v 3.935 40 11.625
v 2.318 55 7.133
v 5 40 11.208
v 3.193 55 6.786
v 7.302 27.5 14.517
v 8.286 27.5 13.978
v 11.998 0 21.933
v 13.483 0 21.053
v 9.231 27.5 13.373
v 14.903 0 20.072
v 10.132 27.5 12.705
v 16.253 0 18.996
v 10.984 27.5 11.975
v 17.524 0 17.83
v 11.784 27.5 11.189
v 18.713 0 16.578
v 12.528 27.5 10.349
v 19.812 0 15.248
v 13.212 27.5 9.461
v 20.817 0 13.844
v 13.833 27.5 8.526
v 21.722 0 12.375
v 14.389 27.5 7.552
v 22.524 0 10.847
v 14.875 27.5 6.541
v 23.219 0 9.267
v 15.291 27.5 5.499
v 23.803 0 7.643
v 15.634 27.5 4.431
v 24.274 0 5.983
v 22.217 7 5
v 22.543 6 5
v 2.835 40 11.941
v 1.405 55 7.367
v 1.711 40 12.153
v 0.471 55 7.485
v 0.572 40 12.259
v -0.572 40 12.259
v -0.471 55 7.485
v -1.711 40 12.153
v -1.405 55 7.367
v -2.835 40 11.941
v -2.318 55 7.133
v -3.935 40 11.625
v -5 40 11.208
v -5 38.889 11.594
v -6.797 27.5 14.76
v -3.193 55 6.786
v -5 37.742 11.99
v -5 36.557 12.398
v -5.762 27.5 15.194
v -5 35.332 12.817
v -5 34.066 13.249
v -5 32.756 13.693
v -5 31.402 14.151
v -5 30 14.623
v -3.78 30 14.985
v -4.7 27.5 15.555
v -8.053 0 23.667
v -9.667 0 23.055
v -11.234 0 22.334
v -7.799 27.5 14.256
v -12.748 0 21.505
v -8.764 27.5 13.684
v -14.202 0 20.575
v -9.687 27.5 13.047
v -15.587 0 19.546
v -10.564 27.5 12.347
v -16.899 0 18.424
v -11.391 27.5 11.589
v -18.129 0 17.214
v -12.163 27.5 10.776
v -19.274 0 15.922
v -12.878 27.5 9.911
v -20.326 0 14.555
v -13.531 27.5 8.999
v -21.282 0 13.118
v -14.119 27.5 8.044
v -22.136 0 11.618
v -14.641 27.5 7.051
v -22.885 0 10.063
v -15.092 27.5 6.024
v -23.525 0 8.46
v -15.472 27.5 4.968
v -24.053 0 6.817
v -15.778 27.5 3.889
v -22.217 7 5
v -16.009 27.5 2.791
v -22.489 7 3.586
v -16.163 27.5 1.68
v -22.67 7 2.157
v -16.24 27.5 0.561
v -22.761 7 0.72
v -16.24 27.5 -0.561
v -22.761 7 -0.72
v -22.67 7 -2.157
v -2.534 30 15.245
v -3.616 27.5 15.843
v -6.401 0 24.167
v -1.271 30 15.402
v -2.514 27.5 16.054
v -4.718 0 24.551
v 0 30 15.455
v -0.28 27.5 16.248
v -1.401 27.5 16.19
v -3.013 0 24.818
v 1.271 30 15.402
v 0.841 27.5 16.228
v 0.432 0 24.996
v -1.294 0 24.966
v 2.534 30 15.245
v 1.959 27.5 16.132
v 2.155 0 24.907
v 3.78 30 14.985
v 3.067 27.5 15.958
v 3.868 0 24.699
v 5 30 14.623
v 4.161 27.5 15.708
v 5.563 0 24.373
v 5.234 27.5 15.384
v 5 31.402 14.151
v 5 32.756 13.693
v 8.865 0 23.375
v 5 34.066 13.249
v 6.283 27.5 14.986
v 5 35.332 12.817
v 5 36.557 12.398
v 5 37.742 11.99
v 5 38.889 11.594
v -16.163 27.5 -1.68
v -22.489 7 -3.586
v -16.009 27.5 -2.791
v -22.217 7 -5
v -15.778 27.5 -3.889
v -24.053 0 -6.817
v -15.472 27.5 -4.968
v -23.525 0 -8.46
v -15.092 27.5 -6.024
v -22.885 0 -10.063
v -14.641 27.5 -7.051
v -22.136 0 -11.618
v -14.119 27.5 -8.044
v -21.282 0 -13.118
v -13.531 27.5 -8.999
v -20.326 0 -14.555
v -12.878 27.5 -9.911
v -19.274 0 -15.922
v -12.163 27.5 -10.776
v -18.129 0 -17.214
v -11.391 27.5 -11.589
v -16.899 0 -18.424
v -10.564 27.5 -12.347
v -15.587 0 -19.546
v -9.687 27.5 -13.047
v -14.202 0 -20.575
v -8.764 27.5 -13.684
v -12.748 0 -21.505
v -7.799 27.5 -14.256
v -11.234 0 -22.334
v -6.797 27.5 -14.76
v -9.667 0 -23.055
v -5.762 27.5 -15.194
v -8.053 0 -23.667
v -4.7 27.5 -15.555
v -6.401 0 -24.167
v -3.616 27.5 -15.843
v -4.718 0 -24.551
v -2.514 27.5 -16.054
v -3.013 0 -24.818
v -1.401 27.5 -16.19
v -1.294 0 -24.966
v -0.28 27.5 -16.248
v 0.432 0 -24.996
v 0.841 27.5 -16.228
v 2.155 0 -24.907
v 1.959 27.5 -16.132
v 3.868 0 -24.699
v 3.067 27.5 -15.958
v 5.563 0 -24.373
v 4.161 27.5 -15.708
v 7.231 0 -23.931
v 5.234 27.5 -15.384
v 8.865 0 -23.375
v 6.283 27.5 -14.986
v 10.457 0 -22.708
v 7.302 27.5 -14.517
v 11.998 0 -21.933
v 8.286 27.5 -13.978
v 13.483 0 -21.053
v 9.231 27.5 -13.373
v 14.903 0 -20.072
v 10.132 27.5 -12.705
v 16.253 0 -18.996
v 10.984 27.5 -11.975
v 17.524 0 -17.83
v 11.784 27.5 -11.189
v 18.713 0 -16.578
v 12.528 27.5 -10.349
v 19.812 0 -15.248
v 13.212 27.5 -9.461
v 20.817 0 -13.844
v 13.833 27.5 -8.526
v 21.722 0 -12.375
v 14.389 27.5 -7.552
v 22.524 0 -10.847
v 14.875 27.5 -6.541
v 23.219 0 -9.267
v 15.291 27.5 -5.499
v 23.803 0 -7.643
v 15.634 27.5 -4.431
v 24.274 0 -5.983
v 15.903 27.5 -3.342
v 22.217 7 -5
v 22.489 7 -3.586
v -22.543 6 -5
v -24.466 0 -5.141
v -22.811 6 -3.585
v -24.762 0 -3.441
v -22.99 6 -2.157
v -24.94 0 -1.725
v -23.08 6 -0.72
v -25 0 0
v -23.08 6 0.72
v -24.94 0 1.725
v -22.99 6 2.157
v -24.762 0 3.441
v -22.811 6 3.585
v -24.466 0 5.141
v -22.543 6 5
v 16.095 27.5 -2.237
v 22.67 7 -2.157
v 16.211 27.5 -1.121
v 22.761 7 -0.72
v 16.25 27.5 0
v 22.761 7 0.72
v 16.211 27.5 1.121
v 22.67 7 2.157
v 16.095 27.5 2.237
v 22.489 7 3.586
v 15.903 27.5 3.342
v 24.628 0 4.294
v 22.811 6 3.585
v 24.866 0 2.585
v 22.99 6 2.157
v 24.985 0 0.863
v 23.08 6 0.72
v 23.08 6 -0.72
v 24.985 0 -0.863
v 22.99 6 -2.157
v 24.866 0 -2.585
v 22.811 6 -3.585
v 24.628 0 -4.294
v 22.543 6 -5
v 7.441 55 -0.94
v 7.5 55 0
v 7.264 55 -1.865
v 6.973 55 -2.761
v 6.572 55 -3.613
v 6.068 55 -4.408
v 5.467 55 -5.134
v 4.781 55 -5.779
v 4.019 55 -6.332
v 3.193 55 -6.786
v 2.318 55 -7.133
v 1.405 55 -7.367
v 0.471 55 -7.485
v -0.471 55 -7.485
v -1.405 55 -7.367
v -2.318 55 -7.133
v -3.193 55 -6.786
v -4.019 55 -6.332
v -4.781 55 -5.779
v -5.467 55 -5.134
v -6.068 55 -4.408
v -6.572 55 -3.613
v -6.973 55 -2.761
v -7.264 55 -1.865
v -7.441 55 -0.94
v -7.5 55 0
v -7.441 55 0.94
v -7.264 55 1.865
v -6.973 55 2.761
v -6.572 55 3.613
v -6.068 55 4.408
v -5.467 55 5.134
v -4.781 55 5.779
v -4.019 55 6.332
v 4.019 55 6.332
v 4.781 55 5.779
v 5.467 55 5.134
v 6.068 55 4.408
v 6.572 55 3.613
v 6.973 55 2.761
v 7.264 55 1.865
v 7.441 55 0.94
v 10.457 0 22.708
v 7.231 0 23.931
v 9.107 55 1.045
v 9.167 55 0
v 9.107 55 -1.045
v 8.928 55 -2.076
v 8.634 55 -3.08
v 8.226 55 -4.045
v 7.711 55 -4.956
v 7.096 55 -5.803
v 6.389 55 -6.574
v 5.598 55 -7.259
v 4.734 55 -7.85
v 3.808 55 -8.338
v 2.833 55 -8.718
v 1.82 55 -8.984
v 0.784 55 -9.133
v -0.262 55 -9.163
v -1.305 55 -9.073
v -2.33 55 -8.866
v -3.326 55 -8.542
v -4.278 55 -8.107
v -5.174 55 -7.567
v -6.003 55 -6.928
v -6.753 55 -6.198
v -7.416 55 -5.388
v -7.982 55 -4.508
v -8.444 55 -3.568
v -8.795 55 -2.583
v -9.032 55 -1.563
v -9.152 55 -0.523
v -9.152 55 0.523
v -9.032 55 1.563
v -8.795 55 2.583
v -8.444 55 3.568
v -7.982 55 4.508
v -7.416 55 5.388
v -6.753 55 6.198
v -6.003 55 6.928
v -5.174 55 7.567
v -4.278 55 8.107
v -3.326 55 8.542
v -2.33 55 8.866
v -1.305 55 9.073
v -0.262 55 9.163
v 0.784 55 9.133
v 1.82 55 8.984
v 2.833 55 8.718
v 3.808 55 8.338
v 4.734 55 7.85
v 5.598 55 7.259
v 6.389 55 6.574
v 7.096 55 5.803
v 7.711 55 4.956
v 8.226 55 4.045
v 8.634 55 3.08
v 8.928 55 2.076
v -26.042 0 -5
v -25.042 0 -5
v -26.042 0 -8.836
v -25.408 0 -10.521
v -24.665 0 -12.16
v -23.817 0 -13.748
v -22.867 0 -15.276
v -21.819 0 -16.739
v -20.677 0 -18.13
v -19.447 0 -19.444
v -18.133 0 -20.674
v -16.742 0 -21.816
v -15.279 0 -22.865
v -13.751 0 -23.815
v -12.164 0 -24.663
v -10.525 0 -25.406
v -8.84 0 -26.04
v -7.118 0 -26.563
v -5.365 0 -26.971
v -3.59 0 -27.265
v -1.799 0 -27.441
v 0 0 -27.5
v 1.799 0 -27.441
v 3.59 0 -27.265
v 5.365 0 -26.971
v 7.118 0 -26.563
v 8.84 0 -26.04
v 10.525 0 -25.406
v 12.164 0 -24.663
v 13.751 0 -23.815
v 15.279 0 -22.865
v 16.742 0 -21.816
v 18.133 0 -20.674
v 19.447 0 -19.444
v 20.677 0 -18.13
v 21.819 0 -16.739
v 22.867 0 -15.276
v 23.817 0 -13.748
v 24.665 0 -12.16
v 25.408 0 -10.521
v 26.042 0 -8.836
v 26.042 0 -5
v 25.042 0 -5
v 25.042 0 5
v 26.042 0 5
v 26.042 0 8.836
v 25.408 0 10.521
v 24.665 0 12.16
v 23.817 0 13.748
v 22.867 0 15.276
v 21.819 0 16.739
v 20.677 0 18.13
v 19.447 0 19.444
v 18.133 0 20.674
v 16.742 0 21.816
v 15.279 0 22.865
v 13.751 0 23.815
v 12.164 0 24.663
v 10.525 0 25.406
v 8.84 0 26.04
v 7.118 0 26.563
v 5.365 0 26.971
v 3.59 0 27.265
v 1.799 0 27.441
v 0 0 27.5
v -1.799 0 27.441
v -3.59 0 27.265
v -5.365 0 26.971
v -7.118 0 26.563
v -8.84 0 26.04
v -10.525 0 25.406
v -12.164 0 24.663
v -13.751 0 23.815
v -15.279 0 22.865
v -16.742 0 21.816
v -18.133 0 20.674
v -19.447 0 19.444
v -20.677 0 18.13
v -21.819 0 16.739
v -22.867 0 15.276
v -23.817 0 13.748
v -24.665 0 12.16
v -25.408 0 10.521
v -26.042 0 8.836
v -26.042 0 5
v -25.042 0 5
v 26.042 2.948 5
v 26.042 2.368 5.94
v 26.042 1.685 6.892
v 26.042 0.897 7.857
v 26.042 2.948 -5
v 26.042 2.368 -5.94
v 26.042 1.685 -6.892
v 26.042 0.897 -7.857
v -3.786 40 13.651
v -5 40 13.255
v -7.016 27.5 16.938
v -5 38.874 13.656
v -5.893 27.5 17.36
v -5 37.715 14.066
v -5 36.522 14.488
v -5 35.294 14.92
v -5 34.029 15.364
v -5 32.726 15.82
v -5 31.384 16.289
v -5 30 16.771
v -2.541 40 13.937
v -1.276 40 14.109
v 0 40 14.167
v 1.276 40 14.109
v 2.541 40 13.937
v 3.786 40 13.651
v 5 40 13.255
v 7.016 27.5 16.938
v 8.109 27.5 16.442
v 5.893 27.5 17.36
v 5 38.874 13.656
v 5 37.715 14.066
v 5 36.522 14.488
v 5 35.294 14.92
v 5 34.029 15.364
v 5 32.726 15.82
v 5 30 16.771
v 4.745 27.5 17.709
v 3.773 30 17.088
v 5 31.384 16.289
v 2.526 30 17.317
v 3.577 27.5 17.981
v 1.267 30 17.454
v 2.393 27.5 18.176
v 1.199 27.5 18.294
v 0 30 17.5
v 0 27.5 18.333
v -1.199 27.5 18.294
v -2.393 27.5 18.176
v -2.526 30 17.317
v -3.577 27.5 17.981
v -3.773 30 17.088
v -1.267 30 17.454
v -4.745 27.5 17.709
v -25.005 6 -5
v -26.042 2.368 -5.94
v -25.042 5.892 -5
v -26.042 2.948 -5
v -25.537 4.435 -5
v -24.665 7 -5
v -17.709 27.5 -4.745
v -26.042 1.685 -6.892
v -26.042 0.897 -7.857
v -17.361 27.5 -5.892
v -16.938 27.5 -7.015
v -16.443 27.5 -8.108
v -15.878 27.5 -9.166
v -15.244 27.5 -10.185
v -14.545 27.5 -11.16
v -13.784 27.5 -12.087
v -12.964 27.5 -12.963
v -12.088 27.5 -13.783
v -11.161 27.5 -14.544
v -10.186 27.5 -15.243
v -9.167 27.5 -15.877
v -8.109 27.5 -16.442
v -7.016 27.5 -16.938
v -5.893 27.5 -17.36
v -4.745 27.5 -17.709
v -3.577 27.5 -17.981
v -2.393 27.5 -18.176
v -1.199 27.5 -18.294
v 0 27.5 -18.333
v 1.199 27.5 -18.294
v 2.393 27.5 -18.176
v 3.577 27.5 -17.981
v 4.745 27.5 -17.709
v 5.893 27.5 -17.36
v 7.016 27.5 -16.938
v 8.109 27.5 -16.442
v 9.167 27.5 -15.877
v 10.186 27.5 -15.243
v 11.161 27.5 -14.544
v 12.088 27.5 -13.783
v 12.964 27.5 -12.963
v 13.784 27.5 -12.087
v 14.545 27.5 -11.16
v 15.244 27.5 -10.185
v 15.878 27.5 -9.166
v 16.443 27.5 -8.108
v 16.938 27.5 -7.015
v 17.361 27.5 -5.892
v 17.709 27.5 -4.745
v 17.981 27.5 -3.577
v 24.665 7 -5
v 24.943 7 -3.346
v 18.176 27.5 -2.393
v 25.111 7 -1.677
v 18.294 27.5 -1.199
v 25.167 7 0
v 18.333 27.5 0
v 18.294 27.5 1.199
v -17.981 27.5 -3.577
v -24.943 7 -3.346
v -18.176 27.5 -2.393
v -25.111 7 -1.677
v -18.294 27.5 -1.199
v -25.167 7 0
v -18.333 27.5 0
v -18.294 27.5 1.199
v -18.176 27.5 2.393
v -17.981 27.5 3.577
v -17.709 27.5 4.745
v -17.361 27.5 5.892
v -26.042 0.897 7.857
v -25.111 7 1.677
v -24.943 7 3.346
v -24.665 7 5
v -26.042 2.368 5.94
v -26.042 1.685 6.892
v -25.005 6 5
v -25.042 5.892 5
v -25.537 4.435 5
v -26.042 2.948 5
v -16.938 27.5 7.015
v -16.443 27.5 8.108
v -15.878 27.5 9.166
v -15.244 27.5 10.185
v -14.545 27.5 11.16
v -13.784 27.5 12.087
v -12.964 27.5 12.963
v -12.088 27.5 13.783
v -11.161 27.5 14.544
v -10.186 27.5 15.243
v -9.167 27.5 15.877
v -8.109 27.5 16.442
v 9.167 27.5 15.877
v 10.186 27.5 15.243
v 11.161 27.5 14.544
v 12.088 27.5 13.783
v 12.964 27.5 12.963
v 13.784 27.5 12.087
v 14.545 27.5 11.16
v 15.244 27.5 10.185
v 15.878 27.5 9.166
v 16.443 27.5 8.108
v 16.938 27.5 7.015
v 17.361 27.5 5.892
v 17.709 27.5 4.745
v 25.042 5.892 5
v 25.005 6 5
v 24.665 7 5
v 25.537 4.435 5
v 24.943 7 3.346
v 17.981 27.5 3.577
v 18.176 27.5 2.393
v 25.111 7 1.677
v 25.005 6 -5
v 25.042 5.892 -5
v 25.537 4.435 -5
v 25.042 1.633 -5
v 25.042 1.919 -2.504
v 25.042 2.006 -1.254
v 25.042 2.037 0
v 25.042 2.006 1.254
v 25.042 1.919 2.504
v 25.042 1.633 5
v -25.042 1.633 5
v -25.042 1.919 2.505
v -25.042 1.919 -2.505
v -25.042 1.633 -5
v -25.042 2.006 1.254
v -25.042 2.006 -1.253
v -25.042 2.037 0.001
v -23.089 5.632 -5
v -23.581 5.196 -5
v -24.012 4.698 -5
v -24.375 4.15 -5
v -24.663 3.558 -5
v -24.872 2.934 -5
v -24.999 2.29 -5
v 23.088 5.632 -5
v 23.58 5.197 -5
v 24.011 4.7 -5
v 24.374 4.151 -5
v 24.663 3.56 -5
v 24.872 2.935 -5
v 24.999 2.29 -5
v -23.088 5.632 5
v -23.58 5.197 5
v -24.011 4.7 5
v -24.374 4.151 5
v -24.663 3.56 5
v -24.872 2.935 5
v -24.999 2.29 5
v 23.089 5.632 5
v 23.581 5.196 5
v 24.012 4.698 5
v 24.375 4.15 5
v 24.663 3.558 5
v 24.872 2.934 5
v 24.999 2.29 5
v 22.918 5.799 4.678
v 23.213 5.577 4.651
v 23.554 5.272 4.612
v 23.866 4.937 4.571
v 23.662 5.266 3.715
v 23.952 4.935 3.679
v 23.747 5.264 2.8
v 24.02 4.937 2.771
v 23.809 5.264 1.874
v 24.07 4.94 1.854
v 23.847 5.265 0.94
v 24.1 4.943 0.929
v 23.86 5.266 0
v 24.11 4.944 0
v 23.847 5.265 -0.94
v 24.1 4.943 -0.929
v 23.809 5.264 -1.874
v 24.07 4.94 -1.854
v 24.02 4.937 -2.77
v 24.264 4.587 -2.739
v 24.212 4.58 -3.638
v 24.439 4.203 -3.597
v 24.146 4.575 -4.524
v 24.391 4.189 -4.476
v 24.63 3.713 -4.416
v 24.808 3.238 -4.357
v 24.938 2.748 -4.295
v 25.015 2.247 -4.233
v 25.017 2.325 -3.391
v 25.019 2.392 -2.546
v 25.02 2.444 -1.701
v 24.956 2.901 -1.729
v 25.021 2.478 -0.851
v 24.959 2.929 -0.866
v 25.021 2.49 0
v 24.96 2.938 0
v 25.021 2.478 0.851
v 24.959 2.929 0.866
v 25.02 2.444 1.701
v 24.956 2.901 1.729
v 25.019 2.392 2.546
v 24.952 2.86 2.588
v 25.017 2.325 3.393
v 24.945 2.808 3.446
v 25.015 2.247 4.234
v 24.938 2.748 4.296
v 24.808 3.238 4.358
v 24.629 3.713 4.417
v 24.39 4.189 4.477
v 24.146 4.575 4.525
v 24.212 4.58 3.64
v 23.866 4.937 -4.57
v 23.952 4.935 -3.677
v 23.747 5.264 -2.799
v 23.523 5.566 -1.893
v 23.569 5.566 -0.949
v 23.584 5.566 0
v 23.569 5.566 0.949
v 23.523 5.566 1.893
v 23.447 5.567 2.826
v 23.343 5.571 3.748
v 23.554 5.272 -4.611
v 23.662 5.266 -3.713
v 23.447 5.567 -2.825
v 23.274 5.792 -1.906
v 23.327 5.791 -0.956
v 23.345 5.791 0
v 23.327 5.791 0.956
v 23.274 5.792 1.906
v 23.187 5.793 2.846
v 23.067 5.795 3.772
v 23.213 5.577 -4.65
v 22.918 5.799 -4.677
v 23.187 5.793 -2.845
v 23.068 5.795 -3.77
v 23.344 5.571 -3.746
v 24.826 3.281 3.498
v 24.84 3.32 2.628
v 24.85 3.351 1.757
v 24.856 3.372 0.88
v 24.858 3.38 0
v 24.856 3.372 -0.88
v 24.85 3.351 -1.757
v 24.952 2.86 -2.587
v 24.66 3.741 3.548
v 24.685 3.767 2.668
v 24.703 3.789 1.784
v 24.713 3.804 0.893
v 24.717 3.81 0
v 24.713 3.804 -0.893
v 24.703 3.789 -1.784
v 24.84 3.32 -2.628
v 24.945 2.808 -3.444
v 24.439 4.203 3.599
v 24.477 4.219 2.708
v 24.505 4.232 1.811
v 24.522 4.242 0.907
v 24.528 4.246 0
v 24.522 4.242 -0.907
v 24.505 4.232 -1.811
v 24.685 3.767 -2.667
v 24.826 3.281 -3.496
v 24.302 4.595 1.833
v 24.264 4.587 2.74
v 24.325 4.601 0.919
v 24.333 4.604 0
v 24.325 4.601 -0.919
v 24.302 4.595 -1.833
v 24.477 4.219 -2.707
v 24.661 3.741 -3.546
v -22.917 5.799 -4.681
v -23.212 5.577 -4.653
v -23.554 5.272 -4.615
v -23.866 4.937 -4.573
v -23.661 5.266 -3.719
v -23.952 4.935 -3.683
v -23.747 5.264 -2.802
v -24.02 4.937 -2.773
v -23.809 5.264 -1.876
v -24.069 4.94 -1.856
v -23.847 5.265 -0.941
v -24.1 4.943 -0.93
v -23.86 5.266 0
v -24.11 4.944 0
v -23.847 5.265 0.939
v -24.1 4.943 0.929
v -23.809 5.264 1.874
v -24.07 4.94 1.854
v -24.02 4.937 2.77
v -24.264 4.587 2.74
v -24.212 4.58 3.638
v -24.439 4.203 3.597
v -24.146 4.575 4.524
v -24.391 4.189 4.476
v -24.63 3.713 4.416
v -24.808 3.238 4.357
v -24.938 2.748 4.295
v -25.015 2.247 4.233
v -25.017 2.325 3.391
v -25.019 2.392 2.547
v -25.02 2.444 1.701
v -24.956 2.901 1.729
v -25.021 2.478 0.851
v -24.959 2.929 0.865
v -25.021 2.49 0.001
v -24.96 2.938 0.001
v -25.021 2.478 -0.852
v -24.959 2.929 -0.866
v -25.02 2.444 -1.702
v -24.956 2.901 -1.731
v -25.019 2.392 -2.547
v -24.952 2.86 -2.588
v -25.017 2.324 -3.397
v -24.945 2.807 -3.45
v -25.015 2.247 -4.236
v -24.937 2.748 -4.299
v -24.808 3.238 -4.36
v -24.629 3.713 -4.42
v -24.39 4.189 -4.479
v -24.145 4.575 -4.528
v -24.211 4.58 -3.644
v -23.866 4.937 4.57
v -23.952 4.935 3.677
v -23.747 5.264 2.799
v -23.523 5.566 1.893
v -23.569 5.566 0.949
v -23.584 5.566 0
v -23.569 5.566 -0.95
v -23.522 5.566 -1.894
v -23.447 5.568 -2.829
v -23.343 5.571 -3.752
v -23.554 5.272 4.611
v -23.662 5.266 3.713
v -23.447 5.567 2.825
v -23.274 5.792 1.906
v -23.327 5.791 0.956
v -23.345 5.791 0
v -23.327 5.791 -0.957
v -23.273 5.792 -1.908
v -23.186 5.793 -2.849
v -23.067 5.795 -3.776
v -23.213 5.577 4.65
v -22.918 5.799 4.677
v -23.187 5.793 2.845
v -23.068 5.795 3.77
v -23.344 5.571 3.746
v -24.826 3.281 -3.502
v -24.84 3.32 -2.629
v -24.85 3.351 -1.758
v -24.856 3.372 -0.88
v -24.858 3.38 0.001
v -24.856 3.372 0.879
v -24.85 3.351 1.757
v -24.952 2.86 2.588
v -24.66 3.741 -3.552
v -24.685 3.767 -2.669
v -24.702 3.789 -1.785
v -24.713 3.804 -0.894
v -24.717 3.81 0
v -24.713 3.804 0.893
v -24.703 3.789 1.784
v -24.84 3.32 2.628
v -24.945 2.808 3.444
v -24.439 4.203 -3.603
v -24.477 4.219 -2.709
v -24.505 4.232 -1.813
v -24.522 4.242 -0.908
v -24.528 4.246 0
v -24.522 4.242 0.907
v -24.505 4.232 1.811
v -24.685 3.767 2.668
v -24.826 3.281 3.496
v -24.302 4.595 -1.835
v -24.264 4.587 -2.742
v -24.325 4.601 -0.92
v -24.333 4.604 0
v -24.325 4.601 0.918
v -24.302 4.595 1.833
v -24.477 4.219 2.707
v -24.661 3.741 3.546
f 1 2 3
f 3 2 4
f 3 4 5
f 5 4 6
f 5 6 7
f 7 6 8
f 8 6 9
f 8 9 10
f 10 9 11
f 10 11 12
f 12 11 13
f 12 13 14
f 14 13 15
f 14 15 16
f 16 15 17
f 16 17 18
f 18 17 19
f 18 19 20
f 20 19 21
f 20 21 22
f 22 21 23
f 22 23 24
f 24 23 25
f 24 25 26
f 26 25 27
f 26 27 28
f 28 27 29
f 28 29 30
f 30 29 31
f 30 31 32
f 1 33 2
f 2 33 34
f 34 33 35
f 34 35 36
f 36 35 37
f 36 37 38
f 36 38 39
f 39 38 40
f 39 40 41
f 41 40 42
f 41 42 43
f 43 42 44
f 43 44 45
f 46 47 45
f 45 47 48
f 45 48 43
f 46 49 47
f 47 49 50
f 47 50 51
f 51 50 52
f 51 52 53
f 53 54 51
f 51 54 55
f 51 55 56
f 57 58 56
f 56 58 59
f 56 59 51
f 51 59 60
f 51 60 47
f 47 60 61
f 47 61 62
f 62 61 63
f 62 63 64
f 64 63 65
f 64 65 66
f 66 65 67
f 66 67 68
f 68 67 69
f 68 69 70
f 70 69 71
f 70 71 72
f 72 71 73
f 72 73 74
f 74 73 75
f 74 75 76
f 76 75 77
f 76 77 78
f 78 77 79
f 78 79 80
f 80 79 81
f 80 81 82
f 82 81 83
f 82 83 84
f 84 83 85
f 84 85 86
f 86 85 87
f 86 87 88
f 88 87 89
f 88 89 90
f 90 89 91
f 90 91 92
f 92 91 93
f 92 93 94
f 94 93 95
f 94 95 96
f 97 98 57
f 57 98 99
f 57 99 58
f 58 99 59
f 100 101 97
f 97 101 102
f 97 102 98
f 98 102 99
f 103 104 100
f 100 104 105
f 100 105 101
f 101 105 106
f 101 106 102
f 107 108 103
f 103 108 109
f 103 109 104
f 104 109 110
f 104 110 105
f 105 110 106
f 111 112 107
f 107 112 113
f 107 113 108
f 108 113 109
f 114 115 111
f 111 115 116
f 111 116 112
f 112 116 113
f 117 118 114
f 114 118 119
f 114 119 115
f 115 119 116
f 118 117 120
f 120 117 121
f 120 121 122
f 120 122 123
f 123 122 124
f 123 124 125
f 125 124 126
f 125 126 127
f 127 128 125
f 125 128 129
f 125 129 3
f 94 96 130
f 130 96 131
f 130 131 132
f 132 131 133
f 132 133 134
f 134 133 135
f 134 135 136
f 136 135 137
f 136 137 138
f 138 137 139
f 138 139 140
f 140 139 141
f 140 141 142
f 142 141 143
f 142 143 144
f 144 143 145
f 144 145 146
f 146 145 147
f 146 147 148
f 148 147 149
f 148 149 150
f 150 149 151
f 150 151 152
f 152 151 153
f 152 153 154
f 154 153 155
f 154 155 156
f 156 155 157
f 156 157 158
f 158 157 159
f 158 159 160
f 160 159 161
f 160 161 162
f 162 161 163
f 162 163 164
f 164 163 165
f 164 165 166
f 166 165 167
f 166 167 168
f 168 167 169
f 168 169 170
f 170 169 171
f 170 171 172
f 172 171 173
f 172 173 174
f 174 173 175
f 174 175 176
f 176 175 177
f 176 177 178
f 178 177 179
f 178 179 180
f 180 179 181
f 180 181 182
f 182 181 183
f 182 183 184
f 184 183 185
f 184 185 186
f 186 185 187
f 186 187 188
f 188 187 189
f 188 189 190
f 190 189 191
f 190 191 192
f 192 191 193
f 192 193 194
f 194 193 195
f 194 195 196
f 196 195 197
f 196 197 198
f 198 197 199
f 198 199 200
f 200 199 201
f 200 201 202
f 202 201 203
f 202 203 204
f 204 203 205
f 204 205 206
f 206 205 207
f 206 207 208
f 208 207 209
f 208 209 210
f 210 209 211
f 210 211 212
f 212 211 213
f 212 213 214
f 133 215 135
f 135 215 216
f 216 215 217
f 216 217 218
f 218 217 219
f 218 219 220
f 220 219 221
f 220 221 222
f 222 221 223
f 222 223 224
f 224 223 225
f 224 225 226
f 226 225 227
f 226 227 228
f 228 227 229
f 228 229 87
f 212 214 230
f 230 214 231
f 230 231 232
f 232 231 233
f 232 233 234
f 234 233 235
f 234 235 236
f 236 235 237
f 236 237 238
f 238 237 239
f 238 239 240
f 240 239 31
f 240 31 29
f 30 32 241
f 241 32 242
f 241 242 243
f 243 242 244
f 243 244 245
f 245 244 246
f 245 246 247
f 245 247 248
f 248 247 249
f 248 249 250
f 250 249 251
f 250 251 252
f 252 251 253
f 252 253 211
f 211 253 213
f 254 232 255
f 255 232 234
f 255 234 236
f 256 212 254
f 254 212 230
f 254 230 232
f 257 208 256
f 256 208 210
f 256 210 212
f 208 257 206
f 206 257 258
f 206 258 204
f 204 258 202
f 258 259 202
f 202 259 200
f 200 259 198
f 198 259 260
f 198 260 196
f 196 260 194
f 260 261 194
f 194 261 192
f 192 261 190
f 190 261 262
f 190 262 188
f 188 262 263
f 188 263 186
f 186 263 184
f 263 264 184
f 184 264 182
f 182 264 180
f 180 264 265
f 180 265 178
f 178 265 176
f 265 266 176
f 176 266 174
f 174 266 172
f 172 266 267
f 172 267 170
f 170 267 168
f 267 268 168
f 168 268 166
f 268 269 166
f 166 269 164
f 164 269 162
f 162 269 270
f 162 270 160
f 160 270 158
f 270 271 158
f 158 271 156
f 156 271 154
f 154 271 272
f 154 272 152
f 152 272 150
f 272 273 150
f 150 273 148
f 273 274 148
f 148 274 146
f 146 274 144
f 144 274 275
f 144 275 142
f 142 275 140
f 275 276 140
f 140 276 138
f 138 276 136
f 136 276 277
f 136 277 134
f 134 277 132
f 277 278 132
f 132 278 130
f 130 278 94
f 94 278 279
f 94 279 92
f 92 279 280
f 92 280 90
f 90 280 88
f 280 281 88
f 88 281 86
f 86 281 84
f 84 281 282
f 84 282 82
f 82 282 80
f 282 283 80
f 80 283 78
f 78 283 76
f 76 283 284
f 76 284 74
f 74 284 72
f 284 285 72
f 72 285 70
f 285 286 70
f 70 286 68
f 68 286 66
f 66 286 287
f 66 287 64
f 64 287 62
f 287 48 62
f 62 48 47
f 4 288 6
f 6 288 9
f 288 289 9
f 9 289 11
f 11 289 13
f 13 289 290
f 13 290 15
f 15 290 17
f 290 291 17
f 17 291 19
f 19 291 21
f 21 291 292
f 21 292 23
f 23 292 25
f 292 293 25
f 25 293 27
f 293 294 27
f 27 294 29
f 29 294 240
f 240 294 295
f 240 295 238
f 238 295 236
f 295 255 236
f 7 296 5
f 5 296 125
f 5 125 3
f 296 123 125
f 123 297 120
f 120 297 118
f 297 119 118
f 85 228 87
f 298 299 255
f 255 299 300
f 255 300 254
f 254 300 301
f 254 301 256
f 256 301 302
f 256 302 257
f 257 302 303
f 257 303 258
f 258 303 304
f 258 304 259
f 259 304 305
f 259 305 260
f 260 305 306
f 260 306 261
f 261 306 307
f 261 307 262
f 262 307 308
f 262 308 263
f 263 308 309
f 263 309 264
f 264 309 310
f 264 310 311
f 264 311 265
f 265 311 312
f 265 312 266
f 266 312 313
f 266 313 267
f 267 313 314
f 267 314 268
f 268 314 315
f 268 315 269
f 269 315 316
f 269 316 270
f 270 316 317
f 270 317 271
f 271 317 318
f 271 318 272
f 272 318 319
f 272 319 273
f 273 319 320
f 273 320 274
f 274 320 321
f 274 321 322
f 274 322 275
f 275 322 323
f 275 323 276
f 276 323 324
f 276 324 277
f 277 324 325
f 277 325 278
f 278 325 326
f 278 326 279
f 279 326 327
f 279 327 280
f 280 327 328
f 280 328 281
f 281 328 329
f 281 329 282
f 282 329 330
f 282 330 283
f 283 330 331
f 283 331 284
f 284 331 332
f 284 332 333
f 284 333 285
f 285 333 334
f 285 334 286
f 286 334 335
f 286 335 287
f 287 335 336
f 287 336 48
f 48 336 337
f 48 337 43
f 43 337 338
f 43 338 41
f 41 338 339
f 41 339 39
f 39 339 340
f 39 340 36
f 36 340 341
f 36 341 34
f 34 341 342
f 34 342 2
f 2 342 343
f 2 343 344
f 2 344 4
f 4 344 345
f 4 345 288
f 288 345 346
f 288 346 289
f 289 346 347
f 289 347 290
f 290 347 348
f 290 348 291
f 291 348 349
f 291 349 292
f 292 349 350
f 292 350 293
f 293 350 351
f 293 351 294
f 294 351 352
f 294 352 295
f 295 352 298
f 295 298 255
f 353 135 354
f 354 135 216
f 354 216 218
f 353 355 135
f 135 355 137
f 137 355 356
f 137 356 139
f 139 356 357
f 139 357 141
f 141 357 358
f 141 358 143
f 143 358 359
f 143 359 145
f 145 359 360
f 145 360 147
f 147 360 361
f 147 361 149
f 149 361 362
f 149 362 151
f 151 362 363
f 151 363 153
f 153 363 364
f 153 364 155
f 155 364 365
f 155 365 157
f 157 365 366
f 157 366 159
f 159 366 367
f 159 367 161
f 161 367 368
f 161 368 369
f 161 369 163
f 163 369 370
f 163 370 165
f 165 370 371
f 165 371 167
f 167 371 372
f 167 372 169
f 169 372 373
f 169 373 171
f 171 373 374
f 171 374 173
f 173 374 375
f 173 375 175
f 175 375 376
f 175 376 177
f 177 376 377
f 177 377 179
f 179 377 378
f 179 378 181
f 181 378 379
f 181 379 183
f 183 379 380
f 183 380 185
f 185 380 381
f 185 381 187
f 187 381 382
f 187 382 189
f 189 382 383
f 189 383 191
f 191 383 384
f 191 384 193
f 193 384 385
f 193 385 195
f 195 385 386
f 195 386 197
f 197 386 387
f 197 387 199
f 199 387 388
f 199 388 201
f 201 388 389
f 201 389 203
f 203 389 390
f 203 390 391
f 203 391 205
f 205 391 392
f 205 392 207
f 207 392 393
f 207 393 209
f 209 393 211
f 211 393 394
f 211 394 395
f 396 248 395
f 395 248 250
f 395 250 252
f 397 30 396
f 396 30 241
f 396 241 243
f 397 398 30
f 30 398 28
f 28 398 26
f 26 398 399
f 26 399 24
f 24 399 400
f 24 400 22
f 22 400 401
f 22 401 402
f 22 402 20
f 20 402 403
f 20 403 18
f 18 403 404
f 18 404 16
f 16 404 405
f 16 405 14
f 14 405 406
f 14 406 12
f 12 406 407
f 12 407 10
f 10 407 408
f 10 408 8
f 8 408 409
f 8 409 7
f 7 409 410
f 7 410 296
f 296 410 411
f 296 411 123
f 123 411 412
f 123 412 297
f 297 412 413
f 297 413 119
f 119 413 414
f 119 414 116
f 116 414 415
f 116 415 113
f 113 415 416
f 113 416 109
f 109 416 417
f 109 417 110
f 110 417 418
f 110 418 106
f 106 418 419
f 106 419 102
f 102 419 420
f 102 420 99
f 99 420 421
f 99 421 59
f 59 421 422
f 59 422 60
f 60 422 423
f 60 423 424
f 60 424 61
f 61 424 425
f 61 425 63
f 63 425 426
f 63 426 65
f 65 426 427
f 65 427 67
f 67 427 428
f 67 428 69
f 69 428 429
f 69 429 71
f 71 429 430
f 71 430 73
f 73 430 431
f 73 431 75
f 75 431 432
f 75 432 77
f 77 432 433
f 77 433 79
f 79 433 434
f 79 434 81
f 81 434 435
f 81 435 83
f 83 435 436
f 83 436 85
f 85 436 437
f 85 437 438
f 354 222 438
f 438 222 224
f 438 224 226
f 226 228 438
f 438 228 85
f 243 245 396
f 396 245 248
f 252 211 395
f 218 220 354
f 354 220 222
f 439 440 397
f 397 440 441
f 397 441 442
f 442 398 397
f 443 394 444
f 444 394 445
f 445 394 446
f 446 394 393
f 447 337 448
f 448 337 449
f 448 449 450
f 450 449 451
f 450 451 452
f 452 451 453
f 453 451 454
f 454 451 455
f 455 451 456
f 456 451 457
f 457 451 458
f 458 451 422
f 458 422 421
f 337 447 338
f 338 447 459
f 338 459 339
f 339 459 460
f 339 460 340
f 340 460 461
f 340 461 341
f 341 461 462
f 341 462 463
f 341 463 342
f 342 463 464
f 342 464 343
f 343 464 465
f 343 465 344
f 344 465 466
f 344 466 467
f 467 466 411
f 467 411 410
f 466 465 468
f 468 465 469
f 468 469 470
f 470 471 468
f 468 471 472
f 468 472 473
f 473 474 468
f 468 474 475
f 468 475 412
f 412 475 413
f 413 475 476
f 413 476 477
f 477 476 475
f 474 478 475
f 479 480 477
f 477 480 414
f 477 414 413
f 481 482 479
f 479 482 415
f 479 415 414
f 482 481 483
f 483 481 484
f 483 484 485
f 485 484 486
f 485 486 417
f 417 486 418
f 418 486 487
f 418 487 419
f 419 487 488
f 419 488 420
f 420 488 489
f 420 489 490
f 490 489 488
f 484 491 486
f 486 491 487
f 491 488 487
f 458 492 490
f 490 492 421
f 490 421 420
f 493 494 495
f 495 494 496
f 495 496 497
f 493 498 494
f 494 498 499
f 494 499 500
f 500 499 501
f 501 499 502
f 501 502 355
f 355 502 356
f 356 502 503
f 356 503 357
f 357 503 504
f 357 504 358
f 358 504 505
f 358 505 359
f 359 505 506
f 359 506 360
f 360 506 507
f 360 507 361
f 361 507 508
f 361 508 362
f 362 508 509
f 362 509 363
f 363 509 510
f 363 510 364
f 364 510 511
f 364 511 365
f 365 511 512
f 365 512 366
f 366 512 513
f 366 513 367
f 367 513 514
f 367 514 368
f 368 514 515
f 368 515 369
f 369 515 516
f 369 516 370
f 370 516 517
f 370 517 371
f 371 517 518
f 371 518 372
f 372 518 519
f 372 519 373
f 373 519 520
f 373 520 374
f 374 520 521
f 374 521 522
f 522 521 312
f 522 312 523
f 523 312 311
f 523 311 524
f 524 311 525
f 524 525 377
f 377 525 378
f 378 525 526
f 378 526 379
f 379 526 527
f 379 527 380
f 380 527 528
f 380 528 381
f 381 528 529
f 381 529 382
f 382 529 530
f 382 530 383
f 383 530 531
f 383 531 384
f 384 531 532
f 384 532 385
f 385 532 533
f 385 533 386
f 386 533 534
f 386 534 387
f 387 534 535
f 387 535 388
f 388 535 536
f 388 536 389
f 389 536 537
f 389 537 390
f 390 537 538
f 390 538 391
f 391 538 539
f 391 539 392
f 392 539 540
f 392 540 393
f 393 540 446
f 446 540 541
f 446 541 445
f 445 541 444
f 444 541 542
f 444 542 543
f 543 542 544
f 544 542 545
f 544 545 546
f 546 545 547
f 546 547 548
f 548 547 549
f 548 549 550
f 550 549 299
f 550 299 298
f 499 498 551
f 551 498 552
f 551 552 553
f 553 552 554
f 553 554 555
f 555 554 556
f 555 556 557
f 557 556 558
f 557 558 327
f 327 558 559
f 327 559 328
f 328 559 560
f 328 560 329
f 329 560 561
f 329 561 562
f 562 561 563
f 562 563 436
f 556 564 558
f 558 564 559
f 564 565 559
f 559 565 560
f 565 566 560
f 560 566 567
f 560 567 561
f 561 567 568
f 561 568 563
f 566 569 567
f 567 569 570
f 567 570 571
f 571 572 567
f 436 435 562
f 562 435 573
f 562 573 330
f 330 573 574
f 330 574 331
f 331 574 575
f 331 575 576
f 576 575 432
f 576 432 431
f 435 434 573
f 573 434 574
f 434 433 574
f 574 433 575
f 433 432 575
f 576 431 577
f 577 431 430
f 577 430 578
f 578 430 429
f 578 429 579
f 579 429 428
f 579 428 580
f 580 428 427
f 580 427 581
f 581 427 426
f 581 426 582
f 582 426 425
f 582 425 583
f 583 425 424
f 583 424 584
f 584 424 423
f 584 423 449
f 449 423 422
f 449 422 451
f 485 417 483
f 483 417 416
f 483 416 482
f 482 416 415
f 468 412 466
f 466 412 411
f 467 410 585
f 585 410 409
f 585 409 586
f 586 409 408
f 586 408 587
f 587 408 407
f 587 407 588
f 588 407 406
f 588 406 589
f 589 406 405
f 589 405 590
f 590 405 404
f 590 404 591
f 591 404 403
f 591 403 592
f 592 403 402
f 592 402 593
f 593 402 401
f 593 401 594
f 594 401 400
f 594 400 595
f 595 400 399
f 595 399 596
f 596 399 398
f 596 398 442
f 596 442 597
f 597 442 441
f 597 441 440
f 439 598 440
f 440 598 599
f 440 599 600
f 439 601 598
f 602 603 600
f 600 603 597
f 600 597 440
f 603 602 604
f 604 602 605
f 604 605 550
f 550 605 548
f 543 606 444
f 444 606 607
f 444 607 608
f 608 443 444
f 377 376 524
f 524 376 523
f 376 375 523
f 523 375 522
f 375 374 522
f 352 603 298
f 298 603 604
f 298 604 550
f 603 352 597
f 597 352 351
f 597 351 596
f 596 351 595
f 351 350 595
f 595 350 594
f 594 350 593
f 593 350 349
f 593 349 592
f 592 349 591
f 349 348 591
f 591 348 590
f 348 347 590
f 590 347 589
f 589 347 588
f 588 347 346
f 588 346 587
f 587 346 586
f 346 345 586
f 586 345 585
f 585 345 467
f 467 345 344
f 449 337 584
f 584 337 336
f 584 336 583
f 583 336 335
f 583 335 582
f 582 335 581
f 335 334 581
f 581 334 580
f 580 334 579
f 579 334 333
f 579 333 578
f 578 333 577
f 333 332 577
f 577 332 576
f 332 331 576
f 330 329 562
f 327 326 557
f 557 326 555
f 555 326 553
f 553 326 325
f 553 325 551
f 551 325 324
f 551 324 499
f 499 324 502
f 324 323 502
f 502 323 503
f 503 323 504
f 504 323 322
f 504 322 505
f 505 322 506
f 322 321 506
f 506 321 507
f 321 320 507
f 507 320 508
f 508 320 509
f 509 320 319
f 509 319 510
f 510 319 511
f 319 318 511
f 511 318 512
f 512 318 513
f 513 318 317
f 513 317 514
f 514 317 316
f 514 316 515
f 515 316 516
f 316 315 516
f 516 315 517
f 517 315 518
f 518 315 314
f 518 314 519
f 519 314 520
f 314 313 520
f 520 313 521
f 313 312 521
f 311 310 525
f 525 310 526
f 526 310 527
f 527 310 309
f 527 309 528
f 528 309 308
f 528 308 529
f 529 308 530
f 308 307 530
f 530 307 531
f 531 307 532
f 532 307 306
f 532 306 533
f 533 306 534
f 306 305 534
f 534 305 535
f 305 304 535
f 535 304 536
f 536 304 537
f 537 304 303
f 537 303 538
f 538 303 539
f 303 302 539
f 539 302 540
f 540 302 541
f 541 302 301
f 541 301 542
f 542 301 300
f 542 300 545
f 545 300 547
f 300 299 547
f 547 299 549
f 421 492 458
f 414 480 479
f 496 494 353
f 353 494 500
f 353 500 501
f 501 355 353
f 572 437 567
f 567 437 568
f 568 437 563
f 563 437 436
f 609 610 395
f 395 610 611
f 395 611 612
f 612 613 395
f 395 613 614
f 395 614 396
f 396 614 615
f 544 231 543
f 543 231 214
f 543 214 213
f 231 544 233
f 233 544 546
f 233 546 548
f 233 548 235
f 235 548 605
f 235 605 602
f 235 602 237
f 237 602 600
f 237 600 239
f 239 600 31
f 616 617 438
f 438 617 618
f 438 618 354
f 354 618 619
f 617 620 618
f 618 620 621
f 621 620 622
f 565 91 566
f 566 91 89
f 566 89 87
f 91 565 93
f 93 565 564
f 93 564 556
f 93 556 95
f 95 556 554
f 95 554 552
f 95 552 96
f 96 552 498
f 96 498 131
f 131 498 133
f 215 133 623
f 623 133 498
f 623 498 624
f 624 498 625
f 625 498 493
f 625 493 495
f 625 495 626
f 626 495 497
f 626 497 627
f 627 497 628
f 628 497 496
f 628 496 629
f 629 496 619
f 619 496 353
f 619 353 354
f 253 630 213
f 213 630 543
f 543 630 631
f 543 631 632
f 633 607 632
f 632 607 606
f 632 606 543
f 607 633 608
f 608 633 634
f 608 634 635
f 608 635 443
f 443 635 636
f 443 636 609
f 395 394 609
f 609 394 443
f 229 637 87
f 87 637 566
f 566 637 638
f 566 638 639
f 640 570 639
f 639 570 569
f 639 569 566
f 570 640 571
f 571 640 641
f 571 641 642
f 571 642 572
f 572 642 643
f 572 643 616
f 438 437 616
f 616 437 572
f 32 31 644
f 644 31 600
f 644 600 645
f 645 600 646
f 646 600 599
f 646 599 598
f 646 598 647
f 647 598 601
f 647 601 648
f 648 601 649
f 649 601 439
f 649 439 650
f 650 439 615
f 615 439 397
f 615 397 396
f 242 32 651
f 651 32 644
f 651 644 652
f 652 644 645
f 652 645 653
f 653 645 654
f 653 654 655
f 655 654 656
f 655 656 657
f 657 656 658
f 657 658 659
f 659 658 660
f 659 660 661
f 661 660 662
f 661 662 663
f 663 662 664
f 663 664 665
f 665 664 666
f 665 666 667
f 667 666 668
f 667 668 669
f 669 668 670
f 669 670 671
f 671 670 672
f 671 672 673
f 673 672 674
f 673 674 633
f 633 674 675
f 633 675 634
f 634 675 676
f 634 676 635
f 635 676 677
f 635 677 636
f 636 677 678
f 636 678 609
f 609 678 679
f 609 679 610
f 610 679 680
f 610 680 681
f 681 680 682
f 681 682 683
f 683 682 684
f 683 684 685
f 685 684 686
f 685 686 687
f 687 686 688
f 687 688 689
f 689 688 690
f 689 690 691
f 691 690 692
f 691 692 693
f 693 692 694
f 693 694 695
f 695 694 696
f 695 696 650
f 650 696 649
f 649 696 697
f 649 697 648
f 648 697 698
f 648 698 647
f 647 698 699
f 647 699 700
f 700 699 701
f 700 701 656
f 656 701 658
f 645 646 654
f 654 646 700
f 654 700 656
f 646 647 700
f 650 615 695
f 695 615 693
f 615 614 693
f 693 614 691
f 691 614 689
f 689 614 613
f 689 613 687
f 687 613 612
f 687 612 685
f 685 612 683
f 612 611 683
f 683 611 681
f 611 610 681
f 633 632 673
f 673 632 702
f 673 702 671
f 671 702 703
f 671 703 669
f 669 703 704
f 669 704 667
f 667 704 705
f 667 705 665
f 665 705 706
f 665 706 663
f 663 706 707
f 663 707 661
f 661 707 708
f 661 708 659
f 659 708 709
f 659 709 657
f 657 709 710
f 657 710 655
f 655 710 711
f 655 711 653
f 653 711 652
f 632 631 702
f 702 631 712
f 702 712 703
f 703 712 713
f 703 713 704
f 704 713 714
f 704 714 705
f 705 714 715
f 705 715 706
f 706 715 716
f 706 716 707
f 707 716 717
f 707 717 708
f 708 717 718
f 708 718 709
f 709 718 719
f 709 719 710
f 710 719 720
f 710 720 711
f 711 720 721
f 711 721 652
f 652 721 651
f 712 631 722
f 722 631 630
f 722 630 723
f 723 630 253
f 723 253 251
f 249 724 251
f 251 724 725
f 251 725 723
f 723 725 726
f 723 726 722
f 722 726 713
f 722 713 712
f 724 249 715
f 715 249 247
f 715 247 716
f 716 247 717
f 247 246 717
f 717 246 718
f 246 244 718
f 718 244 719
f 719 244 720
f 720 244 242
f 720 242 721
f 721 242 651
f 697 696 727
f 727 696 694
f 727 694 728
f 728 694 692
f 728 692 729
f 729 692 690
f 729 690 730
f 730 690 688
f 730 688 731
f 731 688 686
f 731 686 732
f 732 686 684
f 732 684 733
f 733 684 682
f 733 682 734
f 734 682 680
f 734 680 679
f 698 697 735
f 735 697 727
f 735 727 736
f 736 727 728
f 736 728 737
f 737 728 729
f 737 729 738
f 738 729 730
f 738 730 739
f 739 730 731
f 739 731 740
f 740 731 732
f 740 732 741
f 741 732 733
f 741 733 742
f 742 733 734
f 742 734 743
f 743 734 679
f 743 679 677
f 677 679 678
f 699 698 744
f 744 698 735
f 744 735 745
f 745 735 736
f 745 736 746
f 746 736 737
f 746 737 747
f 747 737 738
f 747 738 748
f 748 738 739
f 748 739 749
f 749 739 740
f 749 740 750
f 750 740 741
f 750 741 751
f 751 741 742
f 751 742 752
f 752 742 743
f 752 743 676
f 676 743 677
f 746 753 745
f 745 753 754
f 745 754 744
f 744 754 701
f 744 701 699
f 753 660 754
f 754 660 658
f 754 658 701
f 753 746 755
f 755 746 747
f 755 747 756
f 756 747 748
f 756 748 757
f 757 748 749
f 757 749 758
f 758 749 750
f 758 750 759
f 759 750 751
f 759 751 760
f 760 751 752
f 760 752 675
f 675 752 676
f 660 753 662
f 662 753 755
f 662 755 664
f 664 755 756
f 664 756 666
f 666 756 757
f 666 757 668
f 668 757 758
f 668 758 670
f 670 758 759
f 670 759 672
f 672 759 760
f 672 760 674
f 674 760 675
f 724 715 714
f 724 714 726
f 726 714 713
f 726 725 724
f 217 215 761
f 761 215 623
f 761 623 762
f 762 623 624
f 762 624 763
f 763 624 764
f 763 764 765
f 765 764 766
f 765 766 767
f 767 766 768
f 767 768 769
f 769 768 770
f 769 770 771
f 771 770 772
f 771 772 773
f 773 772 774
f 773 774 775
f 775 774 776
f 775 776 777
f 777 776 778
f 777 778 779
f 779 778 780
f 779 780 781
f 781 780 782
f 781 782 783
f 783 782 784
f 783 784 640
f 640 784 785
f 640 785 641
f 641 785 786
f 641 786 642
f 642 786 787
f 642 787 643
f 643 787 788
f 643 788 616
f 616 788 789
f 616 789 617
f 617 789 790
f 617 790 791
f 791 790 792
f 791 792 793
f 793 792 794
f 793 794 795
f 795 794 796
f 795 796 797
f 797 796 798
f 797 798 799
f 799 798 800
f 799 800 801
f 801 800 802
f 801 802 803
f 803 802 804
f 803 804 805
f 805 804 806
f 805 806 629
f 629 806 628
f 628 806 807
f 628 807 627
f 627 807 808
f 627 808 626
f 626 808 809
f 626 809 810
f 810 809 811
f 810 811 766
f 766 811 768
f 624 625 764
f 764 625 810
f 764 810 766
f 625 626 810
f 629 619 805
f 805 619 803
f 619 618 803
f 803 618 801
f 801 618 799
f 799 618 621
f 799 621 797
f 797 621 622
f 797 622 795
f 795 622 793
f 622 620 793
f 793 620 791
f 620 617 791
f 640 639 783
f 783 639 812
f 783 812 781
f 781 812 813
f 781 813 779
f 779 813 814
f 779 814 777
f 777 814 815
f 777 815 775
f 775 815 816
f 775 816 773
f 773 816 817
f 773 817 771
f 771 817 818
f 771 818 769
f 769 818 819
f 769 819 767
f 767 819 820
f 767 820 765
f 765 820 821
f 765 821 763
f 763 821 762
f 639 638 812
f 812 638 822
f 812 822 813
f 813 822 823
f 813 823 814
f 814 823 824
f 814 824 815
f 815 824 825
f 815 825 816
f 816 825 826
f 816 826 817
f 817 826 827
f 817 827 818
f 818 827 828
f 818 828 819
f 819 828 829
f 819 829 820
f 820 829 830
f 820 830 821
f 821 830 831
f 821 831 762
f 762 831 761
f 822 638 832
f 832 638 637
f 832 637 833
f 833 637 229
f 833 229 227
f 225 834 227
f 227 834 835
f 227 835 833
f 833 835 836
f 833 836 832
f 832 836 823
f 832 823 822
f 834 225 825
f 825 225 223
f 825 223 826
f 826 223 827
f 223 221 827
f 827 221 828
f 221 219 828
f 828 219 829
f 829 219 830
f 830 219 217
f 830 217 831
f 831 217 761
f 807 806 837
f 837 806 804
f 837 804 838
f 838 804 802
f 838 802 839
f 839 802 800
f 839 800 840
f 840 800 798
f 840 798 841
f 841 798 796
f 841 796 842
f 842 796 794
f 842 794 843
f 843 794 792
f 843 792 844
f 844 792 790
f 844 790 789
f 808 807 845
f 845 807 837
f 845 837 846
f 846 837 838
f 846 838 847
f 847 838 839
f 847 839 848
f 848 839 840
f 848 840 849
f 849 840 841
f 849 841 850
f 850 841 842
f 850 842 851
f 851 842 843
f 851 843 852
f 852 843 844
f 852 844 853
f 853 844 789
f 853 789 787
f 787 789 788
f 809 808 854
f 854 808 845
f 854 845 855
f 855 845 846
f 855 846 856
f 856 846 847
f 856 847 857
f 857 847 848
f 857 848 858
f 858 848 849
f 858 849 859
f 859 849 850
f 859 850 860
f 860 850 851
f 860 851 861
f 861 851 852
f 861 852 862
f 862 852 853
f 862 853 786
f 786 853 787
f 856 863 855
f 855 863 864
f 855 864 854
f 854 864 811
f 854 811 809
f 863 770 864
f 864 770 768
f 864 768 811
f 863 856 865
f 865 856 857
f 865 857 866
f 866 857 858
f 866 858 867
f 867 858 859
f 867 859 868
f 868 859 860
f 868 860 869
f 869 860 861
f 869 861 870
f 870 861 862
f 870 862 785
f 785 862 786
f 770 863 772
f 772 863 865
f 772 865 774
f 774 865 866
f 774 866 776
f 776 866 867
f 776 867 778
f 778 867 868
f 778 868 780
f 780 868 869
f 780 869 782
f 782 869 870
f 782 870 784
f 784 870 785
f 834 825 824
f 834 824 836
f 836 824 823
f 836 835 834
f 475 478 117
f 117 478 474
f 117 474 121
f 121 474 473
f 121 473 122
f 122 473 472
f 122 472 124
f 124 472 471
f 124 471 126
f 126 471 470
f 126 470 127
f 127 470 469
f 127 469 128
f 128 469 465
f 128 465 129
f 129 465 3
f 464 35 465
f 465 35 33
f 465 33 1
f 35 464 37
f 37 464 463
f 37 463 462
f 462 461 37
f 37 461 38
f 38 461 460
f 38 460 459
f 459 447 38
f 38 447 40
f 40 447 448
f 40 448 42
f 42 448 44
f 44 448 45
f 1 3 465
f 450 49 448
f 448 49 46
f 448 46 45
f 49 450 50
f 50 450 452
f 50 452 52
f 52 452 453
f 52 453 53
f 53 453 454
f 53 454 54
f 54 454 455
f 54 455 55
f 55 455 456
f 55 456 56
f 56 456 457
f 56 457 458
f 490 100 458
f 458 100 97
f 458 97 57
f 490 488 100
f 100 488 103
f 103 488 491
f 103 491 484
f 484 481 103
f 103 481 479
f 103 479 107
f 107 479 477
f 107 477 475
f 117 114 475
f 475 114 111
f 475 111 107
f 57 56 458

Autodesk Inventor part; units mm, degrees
ref_plane "YZ Plane" through (0, 0, 0) normal (1, 0, 0) x (0, 1, 0)
ref_plane "XZ Plane" through (0, 0, 0) normal (0, 1, 0) x (-1, 0, 0)
ref_plane "XY Plane" through (0, 0, 0) normal (0, 0, 1) x (1, 0, 0)
sketch "Sketch1" plane through (0, 0, 0) normal (0, 1, 0) x (-1, 0, 0)
  point P0 (0, 0)
sketch "Sketch2" plane through (0, 0, 0) normal (0, 1, 0) x (-1, 0, 0)
  circle A0 centre (0, 0) radius 7.5
  dimension "d0" = 15
extrude "Extrusion1" add sketch "Sketch2" along normal blind 60
sketch "Sketch3" plane through (0, 60, 0) normal (0, 1, 0) x (1, 0, 0)
  circle A0 centre (0, 0) radius 7.5
sketch "Sketch4" plane through (0, 0, 0) normal (0, -1, 0) x (1, 0, 0)
  circle A0 centre (0, 0) radius 25
  circle A1 centre (0, 0) radius 7.5 projected
  circle A2 centre (0, 0) radius 27.5
  dimension "d3" = 50
  dimension "d4" = 55
loft "Loft1" add profiles "Sketch4" section 1 edges at (7.5, 60, 0) contours A0 | A1 | A2
sketch "Sketch5" plane through (0, 0, 0) normal (0, -1, 0) x (1, 0, 0)
  circle A0 centre (0, 0) radius 7.5 projected
  circle A1 centre (0, 0) radius 27.5
  circle A2 centre (0, 0) radius 25
  circle A3 centre (0, 0) radius 7.5
  dimension "d9" = 50
  dimension "d10" = 15
sketch "Sketch6" plane through (0, 60, 0) normal (0, 1, 0) x (1, 0, 0)
  circle A0 centre (0, 0) radius 7.5
extrude "Extrusion2" cut sketch "Sketch6" against normal blind 5
sketch "Sketch7" plane through (0, 55, 0) normal (0, 1, 0) x (1, 0, 0)
  circle A0 centre (0, 0) radius 7.5
  line L0 (-11.197, -10.4421) -> (10.2744, -10.4421)
  line L1 (10.2744, -10.4421) -> (10.2744, 11.5325)
  line L2 (10.2744, 11.5325) -> (-11.197, 11.5325)
  line L3 (-11.197, 11.5325) -> (-11.197, -10.4421)
loft "Loft2" cut profiles "Sketch5" section 1 edges at (-7.5, 55, 0) contours A0 | A2
extrude "Extrusion3" cut sketch "Sketch7" along normal through all
sketch "Sketch8" plane through (0, 0, 0) normal (0, -1, 0) x (1, 0, 0)
  circle A0 centre (0, 0) radius 25
  circle A1 centre (0, 0) radius 27.5
  line L0 (27.5, 0) -> (27.5, -5)
  line L1 (27.0416, -5) -> (26.0416, -5)
  line L2 (26.0416, -5) -> (26.0416, 5)
  line L3 (26.0416, 5) -> (27.0416, 5)
  line L4 (27.0416, 5) -> (27.0416, -5)
  line L5 (-27.5, 0) -> (-27.5, -5)
  line L6 (-27.0416, -5) -> (-26.0416, -5)
  line L7 (-26.0416, -5) -> (-26.0416, 5)
  line L8 (-26.0416, 5) -> (-27.0416, 5)
  line L9 (-27.0416, 5) -> (-27.0416, -5)
  line L10 (26.0416, -5) -> (25.0416, -5)
  line L11 (25.0416, -5) -> (25.0416, 5)
  line L12 (25.0416, 5) -> (26.0416, 5)
  line L13 (26.0416, 5) -> (26.0416, -5)
  line L14 (-26.0416, -5) -> (-25.0416, -5)
  line L15 (-25.0416, -5) -> (-25.0416, 5)
  line L16 (-25.0416, 5) -> (-26.0416, 5)
  line L17 (-26.0416, 5) -> (-26.0416, -5)
  line L18 (-26.0416, 5) -> (-26.0416, 8.8365)
  line L19 (-26.0416, -5) -> (-26.0416, -8.8365)
  line L20 (26.0416, -5) -> (26.0416, -8.8365)
  line L21 (26.0416, 5) -> (26.0416, 8.8365)
  circle A2 centre (0, 0) radius 27.5 projected
  dimension "d19" = 5
  dimension "d20" = 1
  dimension "d21" = 10
  dimension "d22" = 5
  dimension "d23" = 1
  dimension "d24" = 10
  dimension "d25" = 1
  dimension "d26" = 1
extrude "Extrusion4" cut sketch "Sketch8" against normal through all contours A1 L4 | L3 L21 A1 | L4 L1 L2 L3 | A1 L20 L1 | L18 L8 A1 | A1 L6 L19 | L9 A1 | L8 L7 L6 L9
sketch "Sketch9" plane through (0, 0, 0) normal (0, -1, 0) x (1, 0, 0)
  circle A0 centre (0, 0) radius 27.5
  circle A1 centre (0, 0) radius 25
  line L0 (27.5, 0) -> (27.5, -5)
  line L1 (26.0416, -8.8365) -> (26.0416, 8.8365) projected
  line L2 (27.0416, -5) -> (26.0416, -5)
  line L3 (26.0416, -5) -> (26.0416, 5)
  line L4 (26.0416, 5) -> (27.0416, 5)
  line L5 (27.0416, 5) -> (27.0416, -5)
  line L6 (26.0416, 5) -> (25.0416, 5)
  line L7 (25.0416, 5) -> (25.0416, -5)
  line L8 (25.0416, -5) -> (26.0416, -5)
  line L9 (26.0416, -5) -> (26.0416, 5)
  line L10 (-27.5, 0) -> (-27.5, -5)
  line L11 (-26.0416, 8.8365) -> (-26.0416, -8.8365) projected
  line L12 (-27.0416, -5) -> (-26.0416, -5)
  line L13 (-26.0416, -5) -> (-26.0416, 5)
  line L14 (-26.0416, 5) -> (-27.0416, 5)
  line L15 (-27.0416, 5) -> (-27.0416, -5)
  line L16 (-26.0416, -5) -> (-25.0416, -5)
  line L17 (-25.0416, -5) -> (-25.0416, 5)
  line L18 (-25.0416, 5) -> (-26.0416, 5)
  line L19 (-26.0416, 5) -> (-26.0416, -5)
  dimension "d29" = 5
  dimension "d30" = 10
  dimension "d31" = 1
  dimension "d32" = 5
  dimension "d33" = 10
  dimension "d34" = 1
extrude "Extrusion5" cut sketch "Sketch9" against normal blind 7 contours L1 L8 L7 L6 | L18 L17 L16 L11
sketch "Sketch10" plane through (25.0416, 0, 5) normal (1, 0, 0) x (0, 0, -1)
  line L0 (0, 0) -> (10, 0)
  line L1 (10, 0) -> (10, 7)
  line L2 (10, 7) -> (0, 7)
  line L3 (0, 7) -> (0, 0)
  line L4 (10, 7) -> (0, 7)
  line L5 (0, 7) -> (0, 6)
  line L6 (0, 6) -> (10, 6)
  line L7 (10, 6) -> (10, 7)
  point P0 (5, 0)
  dimension "d37" = 10
  dimension "d38" = 7
  dimension "d39" = 1
extrude "Extrusion6" cut sketch "Sketch10" against normal through all contours L3 L2 L1 L6
fillet "Fillet1" radius 5 1 edges at (25.0416, 6, 0)
fillet "Fillet2" radius 5 1 edges at (-25.0416, 6, 0)
sketch "Sketch11" plane through (0, 0, 0) normal (0, -1, 0) x (1, 0, 0)
  line L0 (0, 0) -> (35, 0)
  line L1 (35, 0) -> (-35, 0)
  line L2 (-35, 0) -> (-35, 30)
  line L3 (-35, 30) -> (35, 30)
  line L4 (35, 30) -> (35, 0)
  line L5 (0, 30) -> (5, 30)
  line L6 (5, 30) -> (-5, 30)
  line L7 (-5, 30) -> (-5, 40)
  line L8 (-5, 40) -> (5, 40)
  line L9 (5, 40) -> (5, 30)
  dimension "d44" = 35
  dimension "d45" = 70
  dimension "d46" = 30
  dimension "d47" = 5
  dimension "d48" = 10
  dimension "d49" = 10
extrude "Extrusion7" add sketch "Sketch11" against normal blind 50 contours L3 L7 L8 L9
sketch "Sketch12" plane through (5, 0, 40) normal (1, 0, 0) x (0, 0, -1)
  line L0 (10, 0) -> (10, 50) projected
  line L1 (10, 0) -> (10, 35)
  line L2 (10, 35) -> (0, 35)
  line L3 (0, 0) -> (0, 50) projected
  point P0 (40, 0)
  dimension "d52" = 35
sketch "Sketch13" plane through (5, 0, 30) normal (0, 0, -1) x (-1, 0, 0)
  point P0 (5, 0)
sketch "Sketch14" plane through (-5, 0, 40) normal (0, 0, 1) x (1, 0, 0)
  line L0 (10, 0) -> (10, 50) projected
  line L1 (10, 35) -> (10, 40)
  line L2 (0, 0) -> (0, 50) projected
  line L3 (10, 40) -> (0, 40)
  line L4 (0, 40) -> (0, 30)
  line L5 (0, 30) -> (10, 30)
  line L6 (10, 30) -> (10, 40)
  point P0 (5, 0)
  dimension "d53" = 5
  dimension "d54" = 10
extrude "Extrusion8" cut sketch "Sketch14" against normal blind 35
sketch "Sketch15" plane through (0, 50, 0) normal (0, 1, 0) x (1, 0, 0)
  line L0 (5, -30) -> (-5, -30) projected
  line L1 (-5, -40) -> (5, -40) projected
  line L2 (-5, -30) -> (5, -30)
  line L3 (5, -30) -> (5, -40)
  line L4 (5, -40) -> (-5, -40)
  line L5 (-5, -40) -> (-5, -30)
  point P0 (0, 0)
extrude "Extrusion9" cut sketch "Sketch15" against normal through all
properties part number "cone_p3_testpart1_3DPrint"
